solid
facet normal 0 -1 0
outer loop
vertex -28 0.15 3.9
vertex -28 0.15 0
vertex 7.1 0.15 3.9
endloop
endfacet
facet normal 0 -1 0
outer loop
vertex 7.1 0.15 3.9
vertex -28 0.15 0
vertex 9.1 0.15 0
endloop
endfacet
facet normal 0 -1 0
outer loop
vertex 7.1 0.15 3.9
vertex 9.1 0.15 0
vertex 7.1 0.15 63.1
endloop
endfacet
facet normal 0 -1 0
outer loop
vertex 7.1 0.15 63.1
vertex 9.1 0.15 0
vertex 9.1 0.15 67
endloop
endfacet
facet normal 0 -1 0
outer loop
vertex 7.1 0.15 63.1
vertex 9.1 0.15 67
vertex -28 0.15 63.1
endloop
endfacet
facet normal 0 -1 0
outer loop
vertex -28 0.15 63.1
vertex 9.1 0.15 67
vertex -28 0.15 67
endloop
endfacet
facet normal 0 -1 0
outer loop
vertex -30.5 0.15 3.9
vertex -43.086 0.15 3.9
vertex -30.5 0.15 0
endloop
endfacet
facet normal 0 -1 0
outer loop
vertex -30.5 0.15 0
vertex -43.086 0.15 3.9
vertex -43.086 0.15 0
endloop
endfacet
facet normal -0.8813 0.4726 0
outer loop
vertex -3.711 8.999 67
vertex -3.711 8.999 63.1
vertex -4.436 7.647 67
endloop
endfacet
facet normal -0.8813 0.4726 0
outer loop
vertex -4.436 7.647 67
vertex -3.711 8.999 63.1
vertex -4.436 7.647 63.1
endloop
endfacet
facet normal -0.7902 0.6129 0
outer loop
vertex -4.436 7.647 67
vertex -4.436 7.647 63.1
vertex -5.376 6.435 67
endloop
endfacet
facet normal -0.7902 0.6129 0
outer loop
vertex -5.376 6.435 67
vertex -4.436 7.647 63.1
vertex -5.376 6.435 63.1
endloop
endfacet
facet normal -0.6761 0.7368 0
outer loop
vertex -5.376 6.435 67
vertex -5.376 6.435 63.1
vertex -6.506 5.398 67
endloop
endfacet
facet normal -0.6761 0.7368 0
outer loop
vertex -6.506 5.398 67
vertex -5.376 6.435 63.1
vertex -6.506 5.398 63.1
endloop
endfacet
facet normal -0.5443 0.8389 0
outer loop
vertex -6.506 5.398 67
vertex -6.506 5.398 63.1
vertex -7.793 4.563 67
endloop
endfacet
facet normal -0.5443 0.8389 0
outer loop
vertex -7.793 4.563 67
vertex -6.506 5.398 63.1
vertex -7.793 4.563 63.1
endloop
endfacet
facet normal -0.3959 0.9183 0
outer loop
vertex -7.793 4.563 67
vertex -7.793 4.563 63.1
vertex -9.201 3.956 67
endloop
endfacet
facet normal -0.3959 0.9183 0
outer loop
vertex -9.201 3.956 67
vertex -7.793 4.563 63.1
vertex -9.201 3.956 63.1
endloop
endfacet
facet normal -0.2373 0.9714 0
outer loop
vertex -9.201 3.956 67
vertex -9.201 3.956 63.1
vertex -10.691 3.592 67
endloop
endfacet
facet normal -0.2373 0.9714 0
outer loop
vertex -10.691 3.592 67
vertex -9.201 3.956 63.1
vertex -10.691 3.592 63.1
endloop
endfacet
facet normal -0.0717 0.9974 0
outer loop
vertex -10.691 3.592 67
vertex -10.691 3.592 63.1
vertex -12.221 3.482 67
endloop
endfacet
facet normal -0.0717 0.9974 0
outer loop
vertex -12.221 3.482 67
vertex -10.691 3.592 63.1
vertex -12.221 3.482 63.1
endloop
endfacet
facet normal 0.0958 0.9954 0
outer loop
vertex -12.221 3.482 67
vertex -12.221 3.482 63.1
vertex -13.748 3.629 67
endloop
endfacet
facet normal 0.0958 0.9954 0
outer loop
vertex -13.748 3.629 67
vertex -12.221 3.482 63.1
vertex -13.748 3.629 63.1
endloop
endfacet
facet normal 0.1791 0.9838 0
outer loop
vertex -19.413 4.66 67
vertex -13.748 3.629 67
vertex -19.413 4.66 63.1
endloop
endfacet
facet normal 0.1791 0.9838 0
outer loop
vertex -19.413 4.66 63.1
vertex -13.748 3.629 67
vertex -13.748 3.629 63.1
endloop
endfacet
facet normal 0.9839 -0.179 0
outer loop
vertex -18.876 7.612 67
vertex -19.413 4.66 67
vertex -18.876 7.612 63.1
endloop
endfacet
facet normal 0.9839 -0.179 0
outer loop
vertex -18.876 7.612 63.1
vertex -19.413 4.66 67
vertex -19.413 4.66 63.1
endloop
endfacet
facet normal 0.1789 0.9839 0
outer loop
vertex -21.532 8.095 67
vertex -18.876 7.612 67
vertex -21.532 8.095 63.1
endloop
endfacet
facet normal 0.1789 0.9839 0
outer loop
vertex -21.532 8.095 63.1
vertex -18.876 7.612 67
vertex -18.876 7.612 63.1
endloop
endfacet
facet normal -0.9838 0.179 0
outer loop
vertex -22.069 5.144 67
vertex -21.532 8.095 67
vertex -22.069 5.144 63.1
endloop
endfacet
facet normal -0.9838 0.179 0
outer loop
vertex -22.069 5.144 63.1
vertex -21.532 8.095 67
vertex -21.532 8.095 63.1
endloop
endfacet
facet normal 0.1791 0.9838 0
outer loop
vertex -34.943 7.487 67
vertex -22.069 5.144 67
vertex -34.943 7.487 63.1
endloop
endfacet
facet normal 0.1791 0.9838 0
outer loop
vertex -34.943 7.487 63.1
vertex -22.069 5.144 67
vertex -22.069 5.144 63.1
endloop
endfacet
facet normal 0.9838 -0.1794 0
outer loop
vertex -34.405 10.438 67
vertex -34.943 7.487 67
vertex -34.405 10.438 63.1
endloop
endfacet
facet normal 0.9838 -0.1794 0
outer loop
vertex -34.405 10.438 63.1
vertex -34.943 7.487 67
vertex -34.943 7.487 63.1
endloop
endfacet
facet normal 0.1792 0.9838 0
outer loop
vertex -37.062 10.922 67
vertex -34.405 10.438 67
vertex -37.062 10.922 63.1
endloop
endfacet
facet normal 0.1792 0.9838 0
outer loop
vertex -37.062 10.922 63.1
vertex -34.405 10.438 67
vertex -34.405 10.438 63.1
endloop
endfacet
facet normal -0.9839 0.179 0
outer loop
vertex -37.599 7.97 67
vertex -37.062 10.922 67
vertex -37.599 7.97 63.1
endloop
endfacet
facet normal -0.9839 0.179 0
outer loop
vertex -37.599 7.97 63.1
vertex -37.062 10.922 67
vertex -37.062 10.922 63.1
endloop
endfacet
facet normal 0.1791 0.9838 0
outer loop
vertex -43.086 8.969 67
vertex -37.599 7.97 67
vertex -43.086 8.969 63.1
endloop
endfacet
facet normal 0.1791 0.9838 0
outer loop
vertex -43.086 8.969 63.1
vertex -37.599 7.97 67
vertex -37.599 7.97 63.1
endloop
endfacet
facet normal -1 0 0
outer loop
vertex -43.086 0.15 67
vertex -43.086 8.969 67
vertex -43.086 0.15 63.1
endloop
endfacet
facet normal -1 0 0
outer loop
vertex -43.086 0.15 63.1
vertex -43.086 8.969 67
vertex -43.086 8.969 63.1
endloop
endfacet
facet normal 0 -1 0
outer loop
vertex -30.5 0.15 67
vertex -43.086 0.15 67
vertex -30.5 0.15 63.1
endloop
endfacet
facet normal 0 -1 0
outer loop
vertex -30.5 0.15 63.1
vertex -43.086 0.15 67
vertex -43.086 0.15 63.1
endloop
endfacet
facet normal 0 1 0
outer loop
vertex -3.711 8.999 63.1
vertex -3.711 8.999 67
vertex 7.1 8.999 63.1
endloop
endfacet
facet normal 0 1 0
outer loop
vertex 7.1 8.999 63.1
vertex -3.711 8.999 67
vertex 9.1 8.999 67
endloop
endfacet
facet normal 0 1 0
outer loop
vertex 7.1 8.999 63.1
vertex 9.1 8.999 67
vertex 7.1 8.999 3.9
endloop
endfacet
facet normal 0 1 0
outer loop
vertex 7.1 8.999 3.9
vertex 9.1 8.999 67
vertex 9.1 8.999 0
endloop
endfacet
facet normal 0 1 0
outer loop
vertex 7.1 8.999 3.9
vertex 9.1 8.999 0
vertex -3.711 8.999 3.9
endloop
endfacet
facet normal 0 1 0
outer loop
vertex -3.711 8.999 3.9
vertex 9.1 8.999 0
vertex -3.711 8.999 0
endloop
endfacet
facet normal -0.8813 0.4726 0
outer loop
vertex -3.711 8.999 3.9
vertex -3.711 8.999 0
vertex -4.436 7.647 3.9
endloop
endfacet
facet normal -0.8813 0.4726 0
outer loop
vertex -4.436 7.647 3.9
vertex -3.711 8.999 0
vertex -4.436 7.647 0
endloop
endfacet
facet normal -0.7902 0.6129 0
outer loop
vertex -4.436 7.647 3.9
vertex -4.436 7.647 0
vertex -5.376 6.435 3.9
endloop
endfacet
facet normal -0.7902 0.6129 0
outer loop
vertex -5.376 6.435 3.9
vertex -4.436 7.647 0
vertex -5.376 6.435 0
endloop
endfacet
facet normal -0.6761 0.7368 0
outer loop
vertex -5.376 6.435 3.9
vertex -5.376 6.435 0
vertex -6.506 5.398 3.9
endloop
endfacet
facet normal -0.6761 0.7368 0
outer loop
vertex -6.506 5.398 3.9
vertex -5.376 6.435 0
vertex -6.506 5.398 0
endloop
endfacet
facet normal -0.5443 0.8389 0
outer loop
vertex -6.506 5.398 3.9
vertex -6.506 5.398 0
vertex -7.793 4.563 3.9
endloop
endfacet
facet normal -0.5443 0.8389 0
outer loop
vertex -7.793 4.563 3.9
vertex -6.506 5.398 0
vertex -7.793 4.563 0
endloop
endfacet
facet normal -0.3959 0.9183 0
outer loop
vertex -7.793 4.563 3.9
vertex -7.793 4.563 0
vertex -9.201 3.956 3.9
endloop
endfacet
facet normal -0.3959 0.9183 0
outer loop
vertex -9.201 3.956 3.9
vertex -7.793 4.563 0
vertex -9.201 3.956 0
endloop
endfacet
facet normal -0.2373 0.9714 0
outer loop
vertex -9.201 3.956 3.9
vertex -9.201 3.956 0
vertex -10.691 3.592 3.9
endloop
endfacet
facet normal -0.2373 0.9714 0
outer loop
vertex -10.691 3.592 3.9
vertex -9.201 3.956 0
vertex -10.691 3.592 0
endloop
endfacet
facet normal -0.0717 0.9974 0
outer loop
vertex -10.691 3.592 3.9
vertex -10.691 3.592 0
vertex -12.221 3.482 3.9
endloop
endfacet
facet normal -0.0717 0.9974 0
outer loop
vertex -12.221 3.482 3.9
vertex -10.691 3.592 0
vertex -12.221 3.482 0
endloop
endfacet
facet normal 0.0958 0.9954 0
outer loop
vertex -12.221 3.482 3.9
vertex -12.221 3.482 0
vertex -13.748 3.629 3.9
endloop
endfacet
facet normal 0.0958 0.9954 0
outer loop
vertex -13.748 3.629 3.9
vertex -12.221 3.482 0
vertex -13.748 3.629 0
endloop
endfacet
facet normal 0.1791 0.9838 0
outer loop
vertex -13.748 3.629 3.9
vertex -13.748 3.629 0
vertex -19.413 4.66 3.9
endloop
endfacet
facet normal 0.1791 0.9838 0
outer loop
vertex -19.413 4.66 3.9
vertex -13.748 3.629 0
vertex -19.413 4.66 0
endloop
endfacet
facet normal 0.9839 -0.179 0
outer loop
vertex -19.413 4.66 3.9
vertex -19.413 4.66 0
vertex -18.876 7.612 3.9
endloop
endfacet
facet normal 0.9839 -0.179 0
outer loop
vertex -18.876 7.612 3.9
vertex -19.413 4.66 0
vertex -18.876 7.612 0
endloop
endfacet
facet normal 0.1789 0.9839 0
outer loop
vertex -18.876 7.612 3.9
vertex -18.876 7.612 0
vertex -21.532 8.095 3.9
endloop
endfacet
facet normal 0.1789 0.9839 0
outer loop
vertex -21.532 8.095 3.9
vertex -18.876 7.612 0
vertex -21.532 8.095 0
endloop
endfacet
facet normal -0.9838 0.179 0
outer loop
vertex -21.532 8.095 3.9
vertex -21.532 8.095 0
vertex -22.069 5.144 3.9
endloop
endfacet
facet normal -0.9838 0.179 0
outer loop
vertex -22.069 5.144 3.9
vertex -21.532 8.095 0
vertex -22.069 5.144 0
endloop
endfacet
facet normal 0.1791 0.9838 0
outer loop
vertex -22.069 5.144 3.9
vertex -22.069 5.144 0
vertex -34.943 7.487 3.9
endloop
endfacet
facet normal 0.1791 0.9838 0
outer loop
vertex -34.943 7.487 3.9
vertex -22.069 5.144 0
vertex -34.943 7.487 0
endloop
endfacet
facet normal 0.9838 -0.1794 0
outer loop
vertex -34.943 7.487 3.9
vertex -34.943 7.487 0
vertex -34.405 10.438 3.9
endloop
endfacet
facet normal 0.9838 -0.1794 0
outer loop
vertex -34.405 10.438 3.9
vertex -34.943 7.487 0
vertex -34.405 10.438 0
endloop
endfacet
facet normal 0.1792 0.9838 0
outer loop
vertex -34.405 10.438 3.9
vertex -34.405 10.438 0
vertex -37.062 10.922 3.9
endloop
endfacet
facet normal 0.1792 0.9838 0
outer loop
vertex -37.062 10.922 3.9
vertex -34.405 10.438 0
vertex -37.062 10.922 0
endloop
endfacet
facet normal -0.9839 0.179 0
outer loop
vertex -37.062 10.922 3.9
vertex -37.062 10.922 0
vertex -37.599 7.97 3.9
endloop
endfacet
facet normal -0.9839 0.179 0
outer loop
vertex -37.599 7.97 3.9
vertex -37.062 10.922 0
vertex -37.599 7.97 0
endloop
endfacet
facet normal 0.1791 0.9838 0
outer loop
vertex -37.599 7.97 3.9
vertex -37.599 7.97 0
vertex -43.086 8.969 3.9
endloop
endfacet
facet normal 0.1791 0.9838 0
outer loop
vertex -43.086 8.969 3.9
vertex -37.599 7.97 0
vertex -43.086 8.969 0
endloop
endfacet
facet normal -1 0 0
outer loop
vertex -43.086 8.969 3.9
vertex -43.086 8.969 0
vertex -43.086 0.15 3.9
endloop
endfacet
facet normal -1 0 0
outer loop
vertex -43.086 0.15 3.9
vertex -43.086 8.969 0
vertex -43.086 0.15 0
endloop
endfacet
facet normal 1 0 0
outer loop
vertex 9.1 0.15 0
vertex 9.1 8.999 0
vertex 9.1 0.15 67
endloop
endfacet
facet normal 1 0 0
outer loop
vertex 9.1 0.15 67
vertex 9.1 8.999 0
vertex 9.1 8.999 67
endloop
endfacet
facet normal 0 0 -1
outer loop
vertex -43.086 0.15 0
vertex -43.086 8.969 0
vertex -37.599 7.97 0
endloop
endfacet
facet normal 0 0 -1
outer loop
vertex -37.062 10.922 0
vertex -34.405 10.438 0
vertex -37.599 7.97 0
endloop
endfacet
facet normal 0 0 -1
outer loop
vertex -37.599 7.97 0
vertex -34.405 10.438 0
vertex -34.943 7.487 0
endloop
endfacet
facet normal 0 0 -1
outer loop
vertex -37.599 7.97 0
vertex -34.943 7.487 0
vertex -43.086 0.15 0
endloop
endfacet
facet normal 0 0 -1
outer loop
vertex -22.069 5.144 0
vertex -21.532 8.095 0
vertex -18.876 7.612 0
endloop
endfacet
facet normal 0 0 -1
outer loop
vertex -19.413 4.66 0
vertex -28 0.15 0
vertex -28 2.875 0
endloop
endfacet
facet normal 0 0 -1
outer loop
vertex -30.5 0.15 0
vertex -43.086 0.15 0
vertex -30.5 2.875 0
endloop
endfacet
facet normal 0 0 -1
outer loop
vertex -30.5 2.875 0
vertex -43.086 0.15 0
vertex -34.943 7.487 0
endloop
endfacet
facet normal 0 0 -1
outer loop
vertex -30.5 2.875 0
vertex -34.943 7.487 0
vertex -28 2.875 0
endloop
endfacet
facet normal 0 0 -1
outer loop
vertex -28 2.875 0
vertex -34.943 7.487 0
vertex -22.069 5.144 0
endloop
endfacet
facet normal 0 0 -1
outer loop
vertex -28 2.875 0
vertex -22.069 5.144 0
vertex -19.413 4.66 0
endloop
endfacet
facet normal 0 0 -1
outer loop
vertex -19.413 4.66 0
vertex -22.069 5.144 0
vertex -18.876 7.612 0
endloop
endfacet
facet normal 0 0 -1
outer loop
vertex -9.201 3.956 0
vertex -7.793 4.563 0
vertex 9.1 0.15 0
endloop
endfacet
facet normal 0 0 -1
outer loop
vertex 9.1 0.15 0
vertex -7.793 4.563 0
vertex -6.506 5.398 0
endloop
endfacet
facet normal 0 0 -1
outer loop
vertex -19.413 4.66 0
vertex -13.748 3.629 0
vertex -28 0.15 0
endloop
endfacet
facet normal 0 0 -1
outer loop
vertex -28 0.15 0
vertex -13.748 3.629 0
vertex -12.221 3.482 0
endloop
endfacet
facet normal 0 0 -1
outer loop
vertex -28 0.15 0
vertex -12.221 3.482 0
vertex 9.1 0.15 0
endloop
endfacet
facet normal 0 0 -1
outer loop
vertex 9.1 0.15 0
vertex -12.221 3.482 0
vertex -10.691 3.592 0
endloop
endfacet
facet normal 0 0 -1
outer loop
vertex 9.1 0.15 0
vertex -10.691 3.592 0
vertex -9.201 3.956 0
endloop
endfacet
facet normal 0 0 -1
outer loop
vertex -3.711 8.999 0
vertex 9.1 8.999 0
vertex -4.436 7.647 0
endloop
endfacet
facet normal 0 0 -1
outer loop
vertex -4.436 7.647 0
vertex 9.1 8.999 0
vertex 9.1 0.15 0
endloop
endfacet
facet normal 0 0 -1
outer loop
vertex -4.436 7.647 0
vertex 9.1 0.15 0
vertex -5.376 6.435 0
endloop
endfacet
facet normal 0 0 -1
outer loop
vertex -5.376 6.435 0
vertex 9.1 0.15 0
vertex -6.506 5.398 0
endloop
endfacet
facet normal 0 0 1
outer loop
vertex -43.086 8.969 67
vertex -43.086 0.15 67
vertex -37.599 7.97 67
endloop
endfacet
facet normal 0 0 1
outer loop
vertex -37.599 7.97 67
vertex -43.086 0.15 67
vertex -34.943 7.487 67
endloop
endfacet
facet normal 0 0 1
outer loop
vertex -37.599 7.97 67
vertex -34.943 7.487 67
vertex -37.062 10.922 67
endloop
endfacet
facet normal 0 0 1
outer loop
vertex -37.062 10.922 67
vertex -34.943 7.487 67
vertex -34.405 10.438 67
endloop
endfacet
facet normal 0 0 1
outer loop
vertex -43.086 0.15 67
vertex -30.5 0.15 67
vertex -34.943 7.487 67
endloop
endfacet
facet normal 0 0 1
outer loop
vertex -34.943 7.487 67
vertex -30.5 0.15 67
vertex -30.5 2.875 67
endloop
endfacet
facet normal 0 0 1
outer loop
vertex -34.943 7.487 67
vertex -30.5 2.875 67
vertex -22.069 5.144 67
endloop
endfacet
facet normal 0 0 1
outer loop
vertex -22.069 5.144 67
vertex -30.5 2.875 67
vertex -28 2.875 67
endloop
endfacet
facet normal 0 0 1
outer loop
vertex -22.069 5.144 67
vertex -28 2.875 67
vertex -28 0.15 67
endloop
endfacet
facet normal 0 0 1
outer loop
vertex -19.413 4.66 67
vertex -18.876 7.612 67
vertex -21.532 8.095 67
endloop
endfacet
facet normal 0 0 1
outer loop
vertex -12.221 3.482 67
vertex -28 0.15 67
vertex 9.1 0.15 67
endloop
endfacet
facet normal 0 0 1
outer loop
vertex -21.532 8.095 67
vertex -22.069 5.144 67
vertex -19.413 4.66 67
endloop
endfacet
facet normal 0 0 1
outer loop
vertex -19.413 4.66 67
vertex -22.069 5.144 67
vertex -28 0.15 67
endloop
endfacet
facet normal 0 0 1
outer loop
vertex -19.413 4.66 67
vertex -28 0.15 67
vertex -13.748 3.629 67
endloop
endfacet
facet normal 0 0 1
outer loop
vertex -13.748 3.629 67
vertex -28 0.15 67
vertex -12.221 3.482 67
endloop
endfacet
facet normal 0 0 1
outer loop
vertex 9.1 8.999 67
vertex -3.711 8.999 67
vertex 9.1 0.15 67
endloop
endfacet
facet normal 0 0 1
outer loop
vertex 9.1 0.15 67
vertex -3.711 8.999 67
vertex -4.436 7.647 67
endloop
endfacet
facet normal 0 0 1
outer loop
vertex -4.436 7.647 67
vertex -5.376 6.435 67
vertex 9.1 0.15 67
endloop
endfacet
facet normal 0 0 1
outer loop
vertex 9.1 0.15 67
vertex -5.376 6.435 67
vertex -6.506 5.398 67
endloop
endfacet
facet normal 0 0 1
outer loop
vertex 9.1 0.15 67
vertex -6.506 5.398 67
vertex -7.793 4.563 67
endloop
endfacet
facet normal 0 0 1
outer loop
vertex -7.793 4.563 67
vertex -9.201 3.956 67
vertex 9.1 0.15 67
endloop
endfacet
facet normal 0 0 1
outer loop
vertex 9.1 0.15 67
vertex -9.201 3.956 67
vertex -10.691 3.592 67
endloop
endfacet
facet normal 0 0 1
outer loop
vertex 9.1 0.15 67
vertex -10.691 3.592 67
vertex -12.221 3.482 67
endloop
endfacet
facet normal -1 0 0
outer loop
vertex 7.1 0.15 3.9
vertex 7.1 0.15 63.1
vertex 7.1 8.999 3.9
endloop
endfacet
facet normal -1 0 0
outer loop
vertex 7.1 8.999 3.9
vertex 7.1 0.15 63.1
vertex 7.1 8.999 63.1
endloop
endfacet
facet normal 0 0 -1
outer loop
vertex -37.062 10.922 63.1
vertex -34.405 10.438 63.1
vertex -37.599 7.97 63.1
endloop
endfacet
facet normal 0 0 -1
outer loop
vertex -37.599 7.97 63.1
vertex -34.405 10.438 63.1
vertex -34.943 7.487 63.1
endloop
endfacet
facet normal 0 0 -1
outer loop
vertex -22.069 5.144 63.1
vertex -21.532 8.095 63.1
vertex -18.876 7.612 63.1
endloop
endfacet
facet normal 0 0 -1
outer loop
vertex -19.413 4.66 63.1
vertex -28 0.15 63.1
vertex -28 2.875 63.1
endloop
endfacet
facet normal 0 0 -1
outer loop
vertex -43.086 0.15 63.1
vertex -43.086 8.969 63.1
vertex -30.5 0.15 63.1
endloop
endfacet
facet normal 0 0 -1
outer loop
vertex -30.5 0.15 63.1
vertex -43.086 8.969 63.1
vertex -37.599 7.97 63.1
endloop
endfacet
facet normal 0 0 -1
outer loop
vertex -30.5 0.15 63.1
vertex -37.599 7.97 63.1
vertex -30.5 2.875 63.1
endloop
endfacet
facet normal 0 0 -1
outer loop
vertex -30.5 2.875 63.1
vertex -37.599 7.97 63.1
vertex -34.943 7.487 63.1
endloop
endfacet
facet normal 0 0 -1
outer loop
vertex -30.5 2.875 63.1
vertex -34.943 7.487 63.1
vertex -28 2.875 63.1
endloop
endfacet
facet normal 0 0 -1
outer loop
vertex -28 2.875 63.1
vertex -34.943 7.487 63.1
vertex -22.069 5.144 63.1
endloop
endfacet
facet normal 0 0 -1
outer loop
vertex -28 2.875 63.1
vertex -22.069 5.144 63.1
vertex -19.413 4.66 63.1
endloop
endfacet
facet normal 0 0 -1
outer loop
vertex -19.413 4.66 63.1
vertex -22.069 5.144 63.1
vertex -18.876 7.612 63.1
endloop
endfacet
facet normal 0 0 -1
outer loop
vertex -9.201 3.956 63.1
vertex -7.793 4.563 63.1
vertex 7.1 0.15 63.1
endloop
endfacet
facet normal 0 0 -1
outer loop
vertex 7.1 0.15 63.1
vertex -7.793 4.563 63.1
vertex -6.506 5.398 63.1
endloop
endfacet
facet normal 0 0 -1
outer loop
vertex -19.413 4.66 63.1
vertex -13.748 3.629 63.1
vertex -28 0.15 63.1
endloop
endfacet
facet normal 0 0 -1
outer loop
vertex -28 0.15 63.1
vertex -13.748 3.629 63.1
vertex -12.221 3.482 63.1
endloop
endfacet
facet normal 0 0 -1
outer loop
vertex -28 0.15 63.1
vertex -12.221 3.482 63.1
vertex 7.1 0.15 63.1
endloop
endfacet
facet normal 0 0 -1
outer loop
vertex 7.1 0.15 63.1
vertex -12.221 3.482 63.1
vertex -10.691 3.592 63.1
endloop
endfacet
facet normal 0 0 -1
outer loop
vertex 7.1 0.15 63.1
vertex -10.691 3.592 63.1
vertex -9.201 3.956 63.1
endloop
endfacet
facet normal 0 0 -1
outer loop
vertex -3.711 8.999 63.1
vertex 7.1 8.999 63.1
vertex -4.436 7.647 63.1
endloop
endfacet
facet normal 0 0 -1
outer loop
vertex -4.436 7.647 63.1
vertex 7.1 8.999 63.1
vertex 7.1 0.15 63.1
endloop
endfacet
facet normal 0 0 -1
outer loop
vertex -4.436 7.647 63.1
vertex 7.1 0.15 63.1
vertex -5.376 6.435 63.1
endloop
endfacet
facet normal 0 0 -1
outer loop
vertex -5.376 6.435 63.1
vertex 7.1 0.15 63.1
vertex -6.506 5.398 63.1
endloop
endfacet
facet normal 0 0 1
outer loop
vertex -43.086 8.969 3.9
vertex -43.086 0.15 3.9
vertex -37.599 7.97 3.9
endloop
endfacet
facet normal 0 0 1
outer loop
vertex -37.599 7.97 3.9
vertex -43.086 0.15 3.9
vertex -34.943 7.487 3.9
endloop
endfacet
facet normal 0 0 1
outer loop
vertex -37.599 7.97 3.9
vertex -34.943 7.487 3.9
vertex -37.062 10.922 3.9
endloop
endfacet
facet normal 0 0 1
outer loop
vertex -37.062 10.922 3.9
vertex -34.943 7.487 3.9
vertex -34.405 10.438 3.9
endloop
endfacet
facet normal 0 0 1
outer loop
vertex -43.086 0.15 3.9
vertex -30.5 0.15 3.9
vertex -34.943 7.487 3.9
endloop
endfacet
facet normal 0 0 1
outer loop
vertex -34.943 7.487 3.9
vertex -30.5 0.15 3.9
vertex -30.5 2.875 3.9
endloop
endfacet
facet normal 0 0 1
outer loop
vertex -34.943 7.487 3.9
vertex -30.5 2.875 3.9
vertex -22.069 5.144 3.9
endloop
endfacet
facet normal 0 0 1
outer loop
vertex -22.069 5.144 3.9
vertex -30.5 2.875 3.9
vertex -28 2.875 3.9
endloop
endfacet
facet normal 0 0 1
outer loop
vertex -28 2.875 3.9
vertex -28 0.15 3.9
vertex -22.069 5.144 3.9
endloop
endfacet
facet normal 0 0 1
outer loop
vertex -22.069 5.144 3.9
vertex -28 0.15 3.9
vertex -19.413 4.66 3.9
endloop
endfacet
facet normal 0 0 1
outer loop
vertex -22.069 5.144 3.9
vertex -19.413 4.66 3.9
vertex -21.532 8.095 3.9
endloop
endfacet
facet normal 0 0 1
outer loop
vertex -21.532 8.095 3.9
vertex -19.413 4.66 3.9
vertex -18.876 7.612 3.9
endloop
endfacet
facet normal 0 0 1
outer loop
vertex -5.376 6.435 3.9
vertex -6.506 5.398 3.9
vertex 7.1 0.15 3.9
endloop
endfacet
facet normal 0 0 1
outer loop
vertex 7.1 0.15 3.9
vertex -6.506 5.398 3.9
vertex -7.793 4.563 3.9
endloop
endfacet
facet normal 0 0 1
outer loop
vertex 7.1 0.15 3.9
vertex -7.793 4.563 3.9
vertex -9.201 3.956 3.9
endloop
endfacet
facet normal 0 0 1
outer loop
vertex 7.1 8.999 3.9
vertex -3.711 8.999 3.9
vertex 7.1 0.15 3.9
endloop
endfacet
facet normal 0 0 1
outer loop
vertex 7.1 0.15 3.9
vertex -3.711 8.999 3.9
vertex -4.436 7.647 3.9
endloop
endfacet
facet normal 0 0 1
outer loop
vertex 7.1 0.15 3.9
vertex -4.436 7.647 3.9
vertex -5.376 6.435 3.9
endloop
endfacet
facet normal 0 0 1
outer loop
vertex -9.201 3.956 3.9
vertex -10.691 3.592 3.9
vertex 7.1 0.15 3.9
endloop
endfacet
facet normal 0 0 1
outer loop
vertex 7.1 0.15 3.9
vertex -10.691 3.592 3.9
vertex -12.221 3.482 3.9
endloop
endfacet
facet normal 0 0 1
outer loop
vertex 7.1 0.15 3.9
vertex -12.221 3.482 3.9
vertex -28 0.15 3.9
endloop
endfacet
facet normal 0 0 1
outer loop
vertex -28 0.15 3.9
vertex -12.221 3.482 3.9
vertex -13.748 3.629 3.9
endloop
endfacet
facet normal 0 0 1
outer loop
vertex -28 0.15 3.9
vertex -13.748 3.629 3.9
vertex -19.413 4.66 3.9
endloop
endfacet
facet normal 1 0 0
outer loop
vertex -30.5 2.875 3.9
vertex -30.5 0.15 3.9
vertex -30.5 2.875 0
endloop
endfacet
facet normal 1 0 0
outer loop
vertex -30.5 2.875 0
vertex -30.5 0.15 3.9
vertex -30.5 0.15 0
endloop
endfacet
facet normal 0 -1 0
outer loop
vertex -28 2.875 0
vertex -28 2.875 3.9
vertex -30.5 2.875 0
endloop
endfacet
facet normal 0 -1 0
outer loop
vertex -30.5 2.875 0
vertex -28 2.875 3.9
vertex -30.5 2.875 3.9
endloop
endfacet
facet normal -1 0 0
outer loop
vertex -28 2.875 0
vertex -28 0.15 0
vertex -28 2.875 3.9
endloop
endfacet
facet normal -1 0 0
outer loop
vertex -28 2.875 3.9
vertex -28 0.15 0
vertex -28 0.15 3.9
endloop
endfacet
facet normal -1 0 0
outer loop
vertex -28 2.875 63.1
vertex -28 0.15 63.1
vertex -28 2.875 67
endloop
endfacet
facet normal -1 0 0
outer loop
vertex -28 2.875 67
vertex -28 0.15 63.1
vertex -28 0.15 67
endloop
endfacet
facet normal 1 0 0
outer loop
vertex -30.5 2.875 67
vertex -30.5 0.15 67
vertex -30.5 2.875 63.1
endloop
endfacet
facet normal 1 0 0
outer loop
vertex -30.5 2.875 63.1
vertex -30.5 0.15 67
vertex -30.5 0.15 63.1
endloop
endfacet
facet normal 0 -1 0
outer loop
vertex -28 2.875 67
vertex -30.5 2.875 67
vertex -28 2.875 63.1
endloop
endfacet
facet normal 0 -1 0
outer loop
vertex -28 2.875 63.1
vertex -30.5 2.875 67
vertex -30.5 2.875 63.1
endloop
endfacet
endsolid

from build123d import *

# Parameters (mm, degrees)
BOSS_EXTRUDE1_DEPTH = 67
SKETCH2_W           = 59.2
SKETCH2_H           = 17.698005222
CUT_EXTRUDE1_DEPTH  = 50.18617341
SKETCH3_W           = 2.5
SKETCH3_H           = 2.875
CUT_EXTRUDE2_DEPTH  = 81.40340279


with BuildPart() as part:
    # Sketch1 → Boss-Extrude1 (new body)
    with BuildSketch(Plane.XY):
        with BuildLine():
            Line((-13.748013557, 3.628954741), (-19.413054129, 4.660133913))
            Line((-19.413054129, 4.660133913), (-18.875806853, 7.611636134))
            Line((-18.875806853, 7.611636134), (-21.532158853, 8.095158683))
            Line((-21.532158853, 8.095158683), (-22.069406129, 5.143656461))
            Line((-22.069406129, 5.143656461), (-34.942701024, 7.48691833))
            Line((-34.942701024, 7.48691833), (-34.405453748, 10.438420552))
            Line((-34.405453748, 10.438420552), (-37.061805748, 10.9219431))
            Line((-37.061805748, 10.9219431), (-37.599053024, 7.970440879))
            Line((-37.599053024, 7.970440879), (-43.08617341, 8.969234123))
            Line((-43.08617341, 8.969234123), (-43.08617341, 0.15))
            Line((-43.08617341, 0.15), (9.1, 0.15))
            Line((9.1, 0.15), (9.1, 8.999002611))
            Line((9.1, 8.999002611), (-3.711145872, 8.999002611))
            ThreePointArc((-3.711145872, 8.999002611), (-7.792859586, 4.563205458), (-13.748013557, 3.628954741))
        make_face()
    extrude(amount=BOSS_EXTRUDE1_DEPTH)

    # Sketch2 → Cut-Extrude1 (cut)
    with BuildSketch(Plane.ZY.offset(43.08617341)):
        with Locations((33.5, 8.999002611)):
            Rectangle(SKETCH2_W, SKETCH2_H)
    extrude(amount=-CUT_EXTRUDE1_DEPTH, mode=Mode.SUBTRACT)

    # Sketch3 → Cut-Extrude2 (cut, through all)
    with BuildSketch(Plane(origin=(0, 0, 0), x_dir=(-1, 0, 0), z_dir=(0, 0, -1))):
        with Locations((29.25, 1.4375)):
            Rectangle(SKETCH3_W, SKETCH3_H)
    extrude(amount=-CUT_EXTRUDE2_DEPTH, mode=Mode.SUBTRACT)


solid = part.part
